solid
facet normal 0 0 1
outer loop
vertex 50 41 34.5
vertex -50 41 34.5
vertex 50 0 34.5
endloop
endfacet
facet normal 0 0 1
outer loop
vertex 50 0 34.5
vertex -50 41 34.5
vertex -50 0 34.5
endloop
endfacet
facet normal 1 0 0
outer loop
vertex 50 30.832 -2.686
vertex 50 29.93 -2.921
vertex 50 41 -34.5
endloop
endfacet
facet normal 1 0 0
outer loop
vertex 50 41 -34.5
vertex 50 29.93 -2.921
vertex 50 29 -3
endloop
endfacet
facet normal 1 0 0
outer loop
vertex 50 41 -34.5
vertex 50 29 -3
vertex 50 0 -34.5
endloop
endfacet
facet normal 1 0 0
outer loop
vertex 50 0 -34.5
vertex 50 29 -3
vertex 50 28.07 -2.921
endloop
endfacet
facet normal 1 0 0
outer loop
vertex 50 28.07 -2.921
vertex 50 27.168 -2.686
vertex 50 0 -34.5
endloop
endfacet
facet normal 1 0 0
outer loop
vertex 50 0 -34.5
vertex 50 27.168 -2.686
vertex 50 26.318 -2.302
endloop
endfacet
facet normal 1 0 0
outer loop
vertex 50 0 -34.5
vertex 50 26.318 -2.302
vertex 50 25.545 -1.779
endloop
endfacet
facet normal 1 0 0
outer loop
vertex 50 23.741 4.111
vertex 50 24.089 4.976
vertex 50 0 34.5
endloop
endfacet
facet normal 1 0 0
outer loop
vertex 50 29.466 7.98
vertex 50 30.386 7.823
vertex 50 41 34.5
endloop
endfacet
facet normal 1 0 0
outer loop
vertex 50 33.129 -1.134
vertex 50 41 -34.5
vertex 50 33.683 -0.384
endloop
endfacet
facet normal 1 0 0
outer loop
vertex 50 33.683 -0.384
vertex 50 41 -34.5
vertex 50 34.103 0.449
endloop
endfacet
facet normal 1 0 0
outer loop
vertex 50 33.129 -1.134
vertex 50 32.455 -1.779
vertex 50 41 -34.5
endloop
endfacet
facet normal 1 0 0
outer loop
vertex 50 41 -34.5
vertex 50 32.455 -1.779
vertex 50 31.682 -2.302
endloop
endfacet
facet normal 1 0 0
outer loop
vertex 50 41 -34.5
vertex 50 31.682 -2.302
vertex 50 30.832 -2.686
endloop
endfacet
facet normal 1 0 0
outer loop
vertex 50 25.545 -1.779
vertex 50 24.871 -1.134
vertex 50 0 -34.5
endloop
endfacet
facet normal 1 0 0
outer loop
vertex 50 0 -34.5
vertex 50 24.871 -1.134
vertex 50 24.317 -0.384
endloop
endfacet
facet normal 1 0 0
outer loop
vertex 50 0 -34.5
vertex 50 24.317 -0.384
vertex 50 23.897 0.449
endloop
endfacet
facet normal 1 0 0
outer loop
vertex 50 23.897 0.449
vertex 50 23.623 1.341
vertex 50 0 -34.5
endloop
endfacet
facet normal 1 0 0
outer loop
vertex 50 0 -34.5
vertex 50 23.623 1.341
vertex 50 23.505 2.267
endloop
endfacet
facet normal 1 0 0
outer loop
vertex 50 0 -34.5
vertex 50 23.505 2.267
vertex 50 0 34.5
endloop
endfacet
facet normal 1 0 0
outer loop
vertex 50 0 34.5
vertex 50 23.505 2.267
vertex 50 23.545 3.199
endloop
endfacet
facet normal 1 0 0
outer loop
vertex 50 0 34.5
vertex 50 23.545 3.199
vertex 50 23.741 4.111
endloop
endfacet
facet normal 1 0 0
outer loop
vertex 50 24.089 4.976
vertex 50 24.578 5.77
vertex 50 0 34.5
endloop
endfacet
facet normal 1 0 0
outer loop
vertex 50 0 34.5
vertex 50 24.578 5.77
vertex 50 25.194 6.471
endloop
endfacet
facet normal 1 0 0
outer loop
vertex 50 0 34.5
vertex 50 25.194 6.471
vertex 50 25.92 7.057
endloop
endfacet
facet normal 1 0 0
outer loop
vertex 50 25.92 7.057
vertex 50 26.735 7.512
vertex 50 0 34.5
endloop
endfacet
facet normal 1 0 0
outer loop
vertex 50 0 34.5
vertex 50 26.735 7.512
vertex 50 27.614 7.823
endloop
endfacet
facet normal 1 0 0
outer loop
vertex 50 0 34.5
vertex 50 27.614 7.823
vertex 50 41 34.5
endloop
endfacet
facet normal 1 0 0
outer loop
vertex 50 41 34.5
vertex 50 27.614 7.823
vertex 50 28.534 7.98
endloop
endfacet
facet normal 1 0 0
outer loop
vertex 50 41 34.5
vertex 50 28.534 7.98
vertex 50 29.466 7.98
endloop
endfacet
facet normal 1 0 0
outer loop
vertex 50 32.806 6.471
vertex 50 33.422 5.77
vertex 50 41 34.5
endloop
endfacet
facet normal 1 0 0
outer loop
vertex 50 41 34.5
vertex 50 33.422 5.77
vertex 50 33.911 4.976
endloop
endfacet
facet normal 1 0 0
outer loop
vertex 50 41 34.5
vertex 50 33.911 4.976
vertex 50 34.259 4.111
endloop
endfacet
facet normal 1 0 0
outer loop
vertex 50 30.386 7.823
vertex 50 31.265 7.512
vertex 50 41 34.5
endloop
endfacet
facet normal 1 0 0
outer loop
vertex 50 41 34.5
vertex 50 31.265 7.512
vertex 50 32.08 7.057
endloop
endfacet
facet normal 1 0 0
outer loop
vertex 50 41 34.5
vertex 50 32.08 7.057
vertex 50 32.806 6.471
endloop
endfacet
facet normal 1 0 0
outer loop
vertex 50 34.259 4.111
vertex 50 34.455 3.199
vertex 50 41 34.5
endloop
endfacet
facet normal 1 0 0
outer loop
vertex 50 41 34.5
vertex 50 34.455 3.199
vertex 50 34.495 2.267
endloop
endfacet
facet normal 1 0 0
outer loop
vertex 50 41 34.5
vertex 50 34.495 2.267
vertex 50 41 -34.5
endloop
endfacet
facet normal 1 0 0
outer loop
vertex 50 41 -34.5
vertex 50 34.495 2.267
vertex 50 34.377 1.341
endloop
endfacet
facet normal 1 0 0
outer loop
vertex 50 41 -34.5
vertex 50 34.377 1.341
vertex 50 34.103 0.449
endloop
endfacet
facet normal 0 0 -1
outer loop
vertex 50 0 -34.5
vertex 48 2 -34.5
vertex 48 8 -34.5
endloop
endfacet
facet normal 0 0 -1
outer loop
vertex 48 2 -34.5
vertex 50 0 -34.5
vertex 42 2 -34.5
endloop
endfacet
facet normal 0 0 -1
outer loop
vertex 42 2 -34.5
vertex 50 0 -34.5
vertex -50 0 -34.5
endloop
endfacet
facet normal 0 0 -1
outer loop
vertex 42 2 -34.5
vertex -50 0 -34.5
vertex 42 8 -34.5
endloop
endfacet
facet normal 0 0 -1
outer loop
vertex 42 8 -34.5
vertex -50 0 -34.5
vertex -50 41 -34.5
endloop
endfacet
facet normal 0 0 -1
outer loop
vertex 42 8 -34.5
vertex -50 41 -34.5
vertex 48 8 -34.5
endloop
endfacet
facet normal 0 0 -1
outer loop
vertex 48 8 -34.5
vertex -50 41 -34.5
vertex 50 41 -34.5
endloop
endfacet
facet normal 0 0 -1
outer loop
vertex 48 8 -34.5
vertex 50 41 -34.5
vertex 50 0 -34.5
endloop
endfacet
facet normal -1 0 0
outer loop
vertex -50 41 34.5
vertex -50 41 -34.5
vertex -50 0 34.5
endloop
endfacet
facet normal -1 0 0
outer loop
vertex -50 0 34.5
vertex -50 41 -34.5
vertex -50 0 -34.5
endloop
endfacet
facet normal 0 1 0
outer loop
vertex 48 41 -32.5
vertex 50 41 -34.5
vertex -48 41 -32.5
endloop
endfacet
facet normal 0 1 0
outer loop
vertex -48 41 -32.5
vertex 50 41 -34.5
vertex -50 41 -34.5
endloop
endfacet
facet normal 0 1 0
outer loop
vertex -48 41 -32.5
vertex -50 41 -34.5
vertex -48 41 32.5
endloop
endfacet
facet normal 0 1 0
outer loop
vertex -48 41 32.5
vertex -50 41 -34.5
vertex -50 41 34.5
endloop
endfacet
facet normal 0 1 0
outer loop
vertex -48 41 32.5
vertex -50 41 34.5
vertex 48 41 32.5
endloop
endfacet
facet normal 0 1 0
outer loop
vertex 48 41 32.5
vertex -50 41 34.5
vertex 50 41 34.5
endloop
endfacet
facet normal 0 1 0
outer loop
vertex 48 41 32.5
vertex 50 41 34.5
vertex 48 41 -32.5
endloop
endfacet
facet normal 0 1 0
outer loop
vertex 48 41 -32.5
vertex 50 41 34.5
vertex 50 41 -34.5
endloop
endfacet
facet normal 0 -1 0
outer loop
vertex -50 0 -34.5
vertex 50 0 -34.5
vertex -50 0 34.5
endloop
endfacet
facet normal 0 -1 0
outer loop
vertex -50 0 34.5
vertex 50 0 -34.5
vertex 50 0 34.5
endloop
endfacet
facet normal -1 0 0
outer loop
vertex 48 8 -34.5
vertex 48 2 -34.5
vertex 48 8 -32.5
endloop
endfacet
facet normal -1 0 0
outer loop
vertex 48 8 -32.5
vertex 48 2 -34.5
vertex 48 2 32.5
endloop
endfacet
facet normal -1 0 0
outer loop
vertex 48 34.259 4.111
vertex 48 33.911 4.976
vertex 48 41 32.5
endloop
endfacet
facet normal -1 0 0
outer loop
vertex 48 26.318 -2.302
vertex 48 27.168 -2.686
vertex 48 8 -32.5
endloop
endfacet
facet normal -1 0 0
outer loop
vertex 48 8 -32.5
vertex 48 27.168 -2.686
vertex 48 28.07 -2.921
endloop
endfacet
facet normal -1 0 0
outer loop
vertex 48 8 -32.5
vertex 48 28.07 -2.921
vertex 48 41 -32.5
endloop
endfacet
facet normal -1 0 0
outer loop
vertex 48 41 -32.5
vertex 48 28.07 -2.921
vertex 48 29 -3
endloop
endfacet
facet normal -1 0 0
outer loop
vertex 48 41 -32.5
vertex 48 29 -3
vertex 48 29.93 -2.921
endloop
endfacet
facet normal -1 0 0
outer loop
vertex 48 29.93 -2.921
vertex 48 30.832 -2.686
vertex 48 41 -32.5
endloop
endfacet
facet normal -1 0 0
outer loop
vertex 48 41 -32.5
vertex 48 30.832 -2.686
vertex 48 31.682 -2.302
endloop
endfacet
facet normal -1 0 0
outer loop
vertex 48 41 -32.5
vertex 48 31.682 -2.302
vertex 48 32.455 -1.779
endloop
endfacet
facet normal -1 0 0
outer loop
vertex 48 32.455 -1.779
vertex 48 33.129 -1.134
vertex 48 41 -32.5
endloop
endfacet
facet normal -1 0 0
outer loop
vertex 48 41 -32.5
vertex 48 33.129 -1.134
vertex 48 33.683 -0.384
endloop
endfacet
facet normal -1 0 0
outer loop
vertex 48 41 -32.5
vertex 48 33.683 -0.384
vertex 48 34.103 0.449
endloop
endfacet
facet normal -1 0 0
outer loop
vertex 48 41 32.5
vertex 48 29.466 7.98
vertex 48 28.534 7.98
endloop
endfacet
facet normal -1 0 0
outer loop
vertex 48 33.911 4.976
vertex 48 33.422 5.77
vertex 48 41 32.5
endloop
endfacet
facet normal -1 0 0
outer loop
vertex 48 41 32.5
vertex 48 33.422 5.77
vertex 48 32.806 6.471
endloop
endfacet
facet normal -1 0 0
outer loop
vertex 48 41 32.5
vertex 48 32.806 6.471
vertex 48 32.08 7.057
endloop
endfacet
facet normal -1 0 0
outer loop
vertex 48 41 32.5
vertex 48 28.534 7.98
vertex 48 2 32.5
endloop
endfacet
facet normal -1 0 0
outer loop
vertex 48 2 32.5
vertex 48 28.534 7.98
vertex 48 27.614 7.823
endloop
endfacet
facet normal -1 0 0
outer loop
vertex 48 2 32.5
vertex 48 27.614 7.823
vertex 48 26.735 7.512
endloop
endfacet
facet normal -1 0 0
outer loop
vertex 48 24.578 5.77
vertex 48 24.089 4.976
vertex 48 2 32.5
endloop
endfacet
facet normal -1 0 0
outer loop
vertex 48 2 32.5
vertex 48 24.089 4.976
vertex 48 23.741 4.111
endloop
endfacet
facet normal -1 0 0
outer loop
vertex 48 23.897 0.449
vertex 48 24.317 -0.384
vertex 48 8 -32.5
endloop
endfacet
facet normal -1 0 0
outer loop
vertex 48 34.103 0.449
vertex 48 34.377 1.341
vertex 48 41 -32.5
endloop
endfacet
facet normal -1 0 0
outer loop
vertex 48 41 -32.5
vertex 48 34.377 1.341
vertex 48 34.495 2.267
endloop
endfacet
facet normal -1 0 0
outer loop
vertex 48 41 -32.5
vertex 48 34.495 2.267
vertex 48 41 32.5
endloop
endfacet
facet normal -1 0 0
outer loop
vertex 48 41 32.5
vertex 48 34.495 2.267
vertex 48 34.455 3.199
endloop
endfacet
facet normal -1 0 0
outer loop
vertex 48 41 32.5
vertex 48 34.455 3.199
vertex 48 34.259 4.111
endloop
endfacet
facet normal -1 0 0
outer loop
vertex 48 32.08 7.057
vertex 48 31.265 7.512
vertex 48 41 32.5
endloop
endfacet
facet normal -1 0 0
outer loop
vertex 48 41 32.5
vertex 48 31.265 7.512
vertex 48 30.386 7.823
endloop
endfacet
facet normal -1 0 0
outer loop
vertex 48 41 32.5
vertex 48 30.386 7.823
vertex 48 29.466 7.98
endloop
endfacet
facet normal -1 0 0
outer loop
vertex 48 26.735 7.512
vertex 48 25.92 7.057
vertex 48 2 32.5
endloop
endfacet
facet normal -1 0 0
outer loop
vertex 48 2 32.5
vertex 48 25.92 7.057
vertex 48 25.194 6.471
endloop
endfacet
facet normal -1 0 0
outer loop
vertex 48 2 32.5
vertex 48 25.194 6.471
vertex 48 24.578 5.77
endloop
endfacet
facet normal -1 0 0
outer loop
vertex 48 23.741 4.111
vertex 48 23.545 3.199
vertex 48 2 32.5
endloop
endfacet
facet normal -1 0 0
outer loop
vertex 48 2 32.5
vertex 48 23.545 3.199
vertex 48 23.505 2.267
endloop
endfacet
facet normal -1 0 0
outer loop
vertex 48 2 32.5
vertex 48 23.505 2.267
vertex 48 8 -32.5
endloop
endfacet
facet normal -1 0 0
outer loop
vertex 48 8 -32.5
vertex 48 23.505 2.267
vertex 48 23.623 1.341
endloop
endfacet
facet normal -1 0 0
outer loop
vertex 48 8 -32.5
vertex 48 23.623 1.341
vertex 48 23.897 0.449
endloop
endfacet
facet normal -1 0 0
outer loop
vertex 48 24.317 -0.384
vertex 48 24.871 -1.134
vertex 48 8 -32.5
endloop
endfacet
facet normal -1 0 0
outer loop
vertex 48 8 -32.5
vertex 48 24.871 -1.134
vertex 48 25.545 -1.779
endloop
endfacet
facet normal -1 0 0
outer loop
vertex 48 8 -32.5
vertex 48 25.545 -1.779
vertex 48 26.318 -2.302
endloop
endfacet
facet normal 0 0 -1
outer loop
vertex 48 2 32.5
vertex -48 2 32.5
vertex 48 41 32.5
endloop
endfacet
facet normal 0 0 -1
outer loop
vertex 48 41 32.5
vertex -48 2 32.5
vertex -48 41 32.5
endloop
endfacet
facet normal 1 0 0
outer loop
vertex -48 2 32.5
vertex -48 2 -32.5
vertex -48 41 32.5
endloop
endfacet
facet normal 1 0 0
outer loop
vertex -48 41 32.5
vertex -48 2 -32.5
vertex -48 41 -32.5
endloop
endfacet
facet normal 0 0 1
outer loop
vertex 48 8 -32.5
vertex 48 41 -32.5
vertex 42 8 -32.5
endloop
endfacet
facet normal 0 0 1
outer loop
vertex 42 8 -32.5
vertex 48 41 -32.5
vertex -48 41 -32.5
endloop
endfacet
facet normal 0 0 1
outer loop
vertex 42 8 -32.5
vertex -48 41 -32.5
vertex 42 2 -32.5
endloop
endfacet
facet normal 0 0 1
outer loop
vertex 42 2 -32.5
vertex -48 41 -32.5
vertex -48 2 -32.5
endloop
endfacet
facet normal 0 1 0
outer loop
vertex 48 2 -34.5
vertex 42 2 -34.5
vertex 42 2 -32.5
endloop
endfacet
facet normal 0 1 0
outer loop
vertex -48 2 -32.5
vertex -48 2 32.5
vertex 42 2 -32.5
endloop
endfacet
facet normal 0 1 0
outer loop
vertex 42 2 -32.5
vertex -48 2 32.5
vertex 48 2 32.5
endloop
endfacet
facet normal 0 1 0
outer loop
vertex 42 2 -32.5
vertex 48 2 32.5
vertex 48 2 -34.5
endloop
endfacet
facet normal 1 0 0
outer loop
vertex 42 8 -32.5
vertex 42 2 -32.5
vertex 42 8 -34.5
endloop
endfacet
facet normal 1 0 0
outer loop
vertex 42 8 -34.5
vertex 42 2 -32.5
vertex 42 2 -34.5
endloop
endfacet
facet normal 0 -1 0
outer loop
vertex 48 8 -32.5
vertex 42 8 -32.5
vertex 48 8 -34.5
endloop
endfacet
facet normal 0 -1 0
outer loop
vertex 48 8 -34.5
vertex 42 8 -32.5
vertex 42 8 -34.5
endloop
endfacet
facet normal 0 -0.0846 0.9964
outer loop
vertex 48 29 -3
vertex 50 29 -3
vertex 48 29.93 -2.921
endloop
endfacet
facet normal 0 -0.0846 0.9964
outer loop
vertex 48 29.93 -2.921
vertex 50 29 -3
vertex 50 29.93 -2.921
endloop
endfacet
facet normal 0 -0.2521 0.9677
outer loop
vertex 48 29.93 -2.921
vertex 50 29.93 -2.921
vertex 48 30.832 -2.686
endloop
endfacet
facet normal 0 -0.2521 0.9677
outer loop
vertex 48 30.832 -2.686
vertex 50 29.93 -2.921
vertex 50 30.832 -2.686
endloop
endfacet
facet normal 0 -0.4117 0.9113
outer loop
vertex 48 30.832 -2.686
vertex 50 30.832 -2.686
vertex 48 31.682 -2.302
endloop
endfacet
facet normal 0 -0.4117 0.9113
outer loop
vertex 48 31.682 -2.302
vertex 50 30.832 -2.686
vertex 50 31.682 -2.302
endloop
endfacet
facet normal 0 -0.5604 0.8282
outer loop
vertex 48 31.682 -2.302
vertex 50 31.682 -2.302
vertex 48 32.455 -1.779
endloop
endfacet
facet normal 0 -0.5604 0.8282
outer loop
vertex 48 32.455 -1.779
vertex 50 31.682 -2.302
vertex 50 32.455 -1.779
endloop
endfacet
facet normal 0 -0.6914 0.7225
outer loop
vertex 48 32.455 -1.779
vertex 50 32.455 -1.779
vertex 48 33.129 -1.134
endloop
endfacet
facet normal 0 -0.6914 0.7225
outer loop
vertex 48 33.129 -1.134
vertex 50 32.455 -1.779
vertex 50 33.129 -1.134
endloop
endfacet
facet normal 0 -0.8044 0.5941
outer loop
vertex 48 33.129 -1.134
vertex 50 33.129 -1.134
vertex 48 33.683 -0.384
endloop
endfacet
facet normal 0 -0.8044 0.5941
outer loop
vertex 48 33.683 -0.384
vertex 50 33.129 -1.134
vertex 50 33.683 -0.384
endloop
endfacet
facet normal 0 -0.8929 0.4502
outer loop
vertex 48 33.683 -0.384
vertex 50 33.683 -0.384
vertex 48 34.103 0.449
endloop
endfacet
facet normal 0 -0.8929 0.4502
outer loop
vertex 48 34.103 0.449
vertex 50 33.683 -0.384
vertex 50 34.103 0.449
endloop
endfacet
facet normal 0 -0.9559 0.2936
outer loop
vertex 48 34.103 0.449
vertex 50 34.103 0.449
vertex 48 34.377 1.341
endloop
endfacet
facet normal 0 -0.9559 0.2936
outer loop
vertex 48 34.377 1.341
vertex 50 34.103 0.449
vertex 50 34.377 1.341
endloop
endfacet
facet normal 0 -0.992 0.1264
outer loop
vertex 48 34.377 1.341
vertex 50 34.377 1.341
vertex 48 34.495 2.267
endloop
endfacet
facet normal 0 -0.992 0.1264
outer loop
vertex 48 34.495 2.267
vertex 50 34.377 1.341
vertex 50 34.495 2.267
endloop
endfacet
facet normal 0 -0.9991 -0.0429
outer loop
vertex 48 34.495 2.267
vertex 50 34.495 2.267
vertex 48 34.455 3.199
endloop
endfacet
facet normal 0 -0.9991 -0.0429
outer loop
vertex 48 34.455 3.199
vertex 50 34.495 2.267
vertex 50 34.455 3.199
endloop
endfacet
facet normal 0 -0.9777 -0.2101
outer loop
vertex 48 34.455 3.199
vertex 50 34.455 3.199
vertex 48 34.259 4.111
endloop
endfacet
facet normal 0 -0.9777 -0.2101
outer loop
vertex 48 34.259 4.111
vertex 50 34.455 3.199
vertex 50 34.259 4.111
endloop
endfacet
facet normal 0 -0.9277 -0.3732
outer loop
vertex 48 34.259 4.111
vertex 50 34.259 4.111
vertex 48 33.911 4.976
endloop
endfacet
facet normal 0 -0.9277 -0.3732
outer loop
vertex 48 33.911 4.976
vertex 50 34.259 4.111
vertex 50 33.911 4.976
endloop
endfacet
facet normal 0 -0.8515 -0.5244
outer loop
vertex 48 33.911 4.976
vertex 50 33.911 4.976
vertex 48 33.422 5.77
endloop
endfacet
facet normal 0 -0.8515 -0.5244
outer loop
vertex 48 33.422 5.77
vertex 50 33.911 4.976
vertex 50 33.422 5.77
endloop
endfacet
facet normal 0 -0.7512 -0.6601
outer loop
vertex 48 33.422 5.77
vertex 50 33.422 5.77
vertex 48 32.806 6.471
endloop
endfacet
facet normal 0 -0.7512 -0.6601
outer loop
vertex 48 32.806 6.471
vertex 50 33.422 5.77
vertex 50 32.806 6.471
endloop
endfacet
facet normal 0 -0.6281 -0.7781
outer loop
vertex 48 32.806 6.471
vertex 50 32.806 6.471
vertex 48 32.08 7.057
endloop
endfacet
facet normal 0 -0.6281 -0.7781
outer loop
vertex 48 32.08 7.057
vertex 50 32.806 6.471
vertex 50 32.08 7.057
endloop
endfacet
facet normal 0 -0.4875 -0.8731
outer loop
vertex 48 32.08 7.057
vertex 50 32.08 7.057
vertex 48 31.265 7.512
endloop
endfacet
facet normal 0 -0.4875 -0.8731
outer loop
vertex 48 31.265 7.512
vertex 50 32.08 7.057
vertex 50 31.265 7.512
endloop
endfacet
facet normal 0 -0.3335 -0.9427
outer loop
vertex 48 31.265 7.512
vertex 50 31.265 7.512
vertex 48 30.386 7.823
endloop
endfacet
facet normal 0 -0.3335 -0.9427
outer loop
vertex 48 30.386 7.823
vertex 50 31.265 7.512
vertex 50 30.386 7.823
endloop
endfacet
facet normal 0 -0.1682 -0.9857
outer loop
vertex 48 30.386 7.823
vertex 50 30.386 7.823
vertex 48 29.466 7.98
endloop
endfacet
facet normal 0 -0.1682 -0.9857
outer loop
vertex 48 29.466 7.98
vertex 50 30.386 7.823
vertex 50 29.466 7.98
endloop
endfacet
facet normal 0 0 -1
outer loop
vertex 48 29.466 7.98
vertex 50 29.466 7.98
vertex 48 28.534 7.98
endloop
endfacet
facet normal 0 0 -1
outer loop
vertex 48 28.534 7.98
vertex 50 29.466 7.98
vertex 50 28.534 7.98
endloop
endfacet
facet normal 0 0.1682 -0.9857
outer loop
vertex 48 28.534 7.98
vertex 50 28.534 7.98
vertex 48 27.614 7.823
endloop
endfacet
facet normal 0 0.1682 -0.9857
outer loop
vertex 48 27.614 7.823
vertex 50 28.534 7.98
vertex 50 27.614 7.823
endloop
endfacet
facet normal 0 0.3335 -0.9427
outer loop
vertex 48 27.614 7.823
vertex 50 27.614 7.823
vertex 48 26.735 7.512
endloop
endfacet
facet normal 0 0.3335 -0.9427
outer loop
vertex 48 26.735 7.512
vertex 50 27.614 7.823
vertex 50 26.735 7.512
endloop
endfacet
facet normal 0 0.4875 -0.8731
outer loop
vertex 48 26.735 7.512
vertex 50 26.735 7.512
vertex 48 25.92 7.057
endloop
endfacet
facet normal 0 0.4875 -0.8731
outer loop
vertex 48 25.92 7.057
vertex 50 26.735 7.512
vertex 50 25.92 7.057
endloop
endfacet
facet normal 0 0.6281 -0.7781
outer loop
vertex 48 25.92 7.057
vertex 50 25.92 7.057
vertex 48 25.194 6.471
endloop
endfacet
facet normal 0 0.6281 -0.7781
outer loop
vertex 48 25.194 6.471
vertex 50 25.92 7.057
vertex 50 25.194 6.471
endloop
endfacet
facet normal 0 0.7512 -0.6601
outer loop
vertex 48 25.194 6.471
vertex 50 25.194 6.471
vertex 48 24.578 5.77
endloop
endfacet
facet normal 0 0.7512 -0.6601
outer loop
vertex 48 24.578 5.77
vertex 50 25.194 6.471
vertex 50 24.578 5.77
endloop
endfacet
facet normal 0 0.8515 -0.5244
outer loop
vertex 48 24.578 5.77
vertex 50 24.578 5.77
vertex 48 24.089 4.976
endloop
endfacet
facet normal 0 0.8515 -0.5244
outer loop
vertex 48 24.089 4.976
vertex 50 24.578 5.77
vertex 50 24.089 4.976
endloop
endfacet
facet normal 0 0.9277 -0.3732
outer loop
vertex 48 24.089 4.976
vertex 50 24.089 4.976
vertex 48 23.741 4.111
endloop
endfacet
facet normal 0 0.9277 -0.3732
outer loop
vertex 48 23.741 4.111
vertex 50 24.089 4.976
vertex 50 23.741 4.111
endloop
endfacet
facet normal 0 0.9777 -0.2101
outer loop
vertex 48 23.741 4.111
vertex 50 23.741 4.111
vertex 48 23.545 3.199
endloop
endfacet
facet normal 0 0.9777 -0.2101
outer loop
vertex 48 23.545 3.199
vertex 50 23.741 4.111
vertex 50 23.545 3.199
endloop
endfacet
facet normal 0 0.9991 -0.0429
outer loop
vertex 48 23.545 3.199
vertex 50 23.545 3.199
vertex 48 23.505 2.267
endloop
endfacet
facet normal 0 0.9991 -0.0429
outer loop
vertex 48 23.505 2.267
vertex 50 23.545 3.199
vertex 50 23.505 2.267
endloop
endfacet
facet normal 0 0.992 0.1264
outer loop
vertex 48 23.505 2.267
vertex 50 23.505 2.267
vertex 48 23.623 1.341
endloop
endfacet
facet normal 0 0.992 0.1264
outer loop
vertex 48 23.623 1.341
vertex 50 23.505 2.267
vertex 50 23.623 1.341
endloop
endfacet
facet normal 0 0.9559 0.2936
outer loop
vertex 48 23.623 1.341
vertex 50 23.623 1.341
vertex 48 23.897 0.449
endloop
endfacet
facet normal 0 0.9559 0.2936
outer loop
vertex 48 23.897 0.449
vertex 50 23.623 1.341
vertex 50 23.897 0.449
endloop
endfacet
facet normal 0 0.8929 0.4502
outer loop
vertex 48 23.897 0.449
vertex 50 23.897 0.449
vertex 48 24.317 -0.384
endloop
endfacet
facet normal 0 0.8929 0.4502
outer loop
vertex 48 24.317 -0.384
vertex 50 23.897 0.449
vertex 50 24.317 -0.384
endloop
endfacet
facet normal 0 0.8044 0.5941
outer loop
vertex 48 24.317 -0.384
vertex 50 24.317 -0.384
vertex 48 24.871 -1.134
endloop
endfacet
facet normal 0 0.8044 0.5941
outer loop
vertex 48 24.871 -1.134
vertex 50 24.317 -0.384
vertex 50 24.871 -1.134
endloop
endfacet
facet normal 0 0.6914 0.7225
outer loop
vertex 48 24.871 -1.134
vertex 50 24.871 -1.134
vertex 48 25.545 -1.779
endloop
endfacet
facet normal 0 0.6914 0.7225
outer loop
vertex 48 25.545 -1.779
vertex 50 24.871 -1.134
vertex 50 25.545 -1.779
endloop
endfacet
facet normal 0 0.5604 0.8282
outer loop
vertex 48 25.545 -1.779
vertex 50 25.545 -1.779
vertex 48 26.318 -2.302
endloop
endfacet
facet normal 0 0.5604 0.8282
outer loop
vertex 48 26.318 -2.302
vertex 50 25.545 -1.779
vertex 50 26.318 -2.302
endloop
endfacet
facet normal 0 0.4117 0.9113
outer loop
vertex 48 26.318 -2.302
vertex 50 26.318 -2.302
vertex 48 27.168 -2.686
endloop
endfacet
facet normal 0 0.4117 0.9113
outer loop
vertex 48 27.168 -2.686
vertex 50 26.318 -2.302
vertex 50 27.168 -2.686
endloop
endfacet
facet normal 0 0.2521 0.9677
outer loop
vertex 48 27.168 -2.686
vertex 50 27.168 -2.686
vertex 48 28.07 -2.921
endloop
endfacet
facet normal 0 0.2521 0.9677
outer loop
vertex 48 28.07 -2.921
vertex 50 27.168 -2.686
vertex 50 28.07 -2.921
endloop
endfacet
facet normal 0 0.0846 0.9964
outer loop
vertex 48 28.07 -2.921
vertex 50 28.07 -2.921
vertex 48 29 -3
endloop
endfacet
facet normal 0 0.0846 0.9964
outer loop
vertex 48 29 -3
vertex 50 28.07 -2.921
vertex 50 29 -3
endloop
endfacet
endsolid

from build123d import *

# Parameters (mm, degrees)
SKETCH1_W           = 100
SKETCH1_H           = 69
BOSS_EXTRUDE1_DEPTH = 41
SKETCH3_W           = 96
SKETCH3_H           = 65
CUT_EXTRUDE2_DEPTH  = 39
SKETCH4_W           = 6
SKETCH4_H           = 6
CUT_EXTRUDE3_DEPTH  = 2
SKETCH1_4_W         = 100
SKETCH1_4_H         = 69
BOSS_EXTRUDE2_DEPTH = 2
SKETCH6_R           = 5.5
CUT_EXTRUDE4_DEPTH  = 2


with BuildPart() as part:
    # Sketch1 → Boss-Extrude1 (new body)
    with BuildSketch(Plane(origin=(0, 0, 0), x_dir=(1, 0, 0), z_dir=(0, 1, 0))):
        Rectangle(SKETCH1_W, SKETCH1_H)
    extrude(amount=BOSS_EXTRUDE1_DEPTH)

    # Sketch3 → Cut-Extrude2 (cut)
    with BuildSketch(Plane(origin=(0, 41, 0), x_dir=(1, 0, 0), z_dir=(0, 1, 0))):
        Rectangle(SKETCH3_W, SKETCH3_H)
    extrude(amount=-CUT_EXTRUDE2_DEPTH, mode=Mode.SUBTRACT)

    # Sketch4 → Cut-Extrude3 (cut)
    with BuildSketch(Plane(origin=(0, 0, -34.5), x_dir=(-1, 0, 0), z_dir=(0, 0, -1))):
        with Locations((-45, 5)):
            Rectangle(SKETCH4_W, SKETCH4_H)
    extrude(amount=-CUT_EXTRUDE3_DEPTH, mode=Mode.SUBTRACT)

    # Sketch1<4> → Boss-Extrude2 (add)
    with BuildSketch(Plane(origin=(0, 0, 0), x_dir=(1, 0, 0), z_dir=(0, 1, 0))):
        Rectangle(SKETCH1_4_W, SKETCH1_4_H)
    extrude(amount=BOSS_EXTRUDE2_DEPTH)

    # Sketch6 → Cut-Extrude4 (cut)
    with BuildSketch(Plane(origin=(50, 0, 0), x_dir=(0, 0, -1), z_dir=(1, 0, 0))):
        with Locations((-2.5, 29)):
            Circle(SKETCH6_R)
    extrude(amount=-CUT_EXTRUDE4_DEPTH, mode=Mode.SUBTRACT)


solid = part.part
